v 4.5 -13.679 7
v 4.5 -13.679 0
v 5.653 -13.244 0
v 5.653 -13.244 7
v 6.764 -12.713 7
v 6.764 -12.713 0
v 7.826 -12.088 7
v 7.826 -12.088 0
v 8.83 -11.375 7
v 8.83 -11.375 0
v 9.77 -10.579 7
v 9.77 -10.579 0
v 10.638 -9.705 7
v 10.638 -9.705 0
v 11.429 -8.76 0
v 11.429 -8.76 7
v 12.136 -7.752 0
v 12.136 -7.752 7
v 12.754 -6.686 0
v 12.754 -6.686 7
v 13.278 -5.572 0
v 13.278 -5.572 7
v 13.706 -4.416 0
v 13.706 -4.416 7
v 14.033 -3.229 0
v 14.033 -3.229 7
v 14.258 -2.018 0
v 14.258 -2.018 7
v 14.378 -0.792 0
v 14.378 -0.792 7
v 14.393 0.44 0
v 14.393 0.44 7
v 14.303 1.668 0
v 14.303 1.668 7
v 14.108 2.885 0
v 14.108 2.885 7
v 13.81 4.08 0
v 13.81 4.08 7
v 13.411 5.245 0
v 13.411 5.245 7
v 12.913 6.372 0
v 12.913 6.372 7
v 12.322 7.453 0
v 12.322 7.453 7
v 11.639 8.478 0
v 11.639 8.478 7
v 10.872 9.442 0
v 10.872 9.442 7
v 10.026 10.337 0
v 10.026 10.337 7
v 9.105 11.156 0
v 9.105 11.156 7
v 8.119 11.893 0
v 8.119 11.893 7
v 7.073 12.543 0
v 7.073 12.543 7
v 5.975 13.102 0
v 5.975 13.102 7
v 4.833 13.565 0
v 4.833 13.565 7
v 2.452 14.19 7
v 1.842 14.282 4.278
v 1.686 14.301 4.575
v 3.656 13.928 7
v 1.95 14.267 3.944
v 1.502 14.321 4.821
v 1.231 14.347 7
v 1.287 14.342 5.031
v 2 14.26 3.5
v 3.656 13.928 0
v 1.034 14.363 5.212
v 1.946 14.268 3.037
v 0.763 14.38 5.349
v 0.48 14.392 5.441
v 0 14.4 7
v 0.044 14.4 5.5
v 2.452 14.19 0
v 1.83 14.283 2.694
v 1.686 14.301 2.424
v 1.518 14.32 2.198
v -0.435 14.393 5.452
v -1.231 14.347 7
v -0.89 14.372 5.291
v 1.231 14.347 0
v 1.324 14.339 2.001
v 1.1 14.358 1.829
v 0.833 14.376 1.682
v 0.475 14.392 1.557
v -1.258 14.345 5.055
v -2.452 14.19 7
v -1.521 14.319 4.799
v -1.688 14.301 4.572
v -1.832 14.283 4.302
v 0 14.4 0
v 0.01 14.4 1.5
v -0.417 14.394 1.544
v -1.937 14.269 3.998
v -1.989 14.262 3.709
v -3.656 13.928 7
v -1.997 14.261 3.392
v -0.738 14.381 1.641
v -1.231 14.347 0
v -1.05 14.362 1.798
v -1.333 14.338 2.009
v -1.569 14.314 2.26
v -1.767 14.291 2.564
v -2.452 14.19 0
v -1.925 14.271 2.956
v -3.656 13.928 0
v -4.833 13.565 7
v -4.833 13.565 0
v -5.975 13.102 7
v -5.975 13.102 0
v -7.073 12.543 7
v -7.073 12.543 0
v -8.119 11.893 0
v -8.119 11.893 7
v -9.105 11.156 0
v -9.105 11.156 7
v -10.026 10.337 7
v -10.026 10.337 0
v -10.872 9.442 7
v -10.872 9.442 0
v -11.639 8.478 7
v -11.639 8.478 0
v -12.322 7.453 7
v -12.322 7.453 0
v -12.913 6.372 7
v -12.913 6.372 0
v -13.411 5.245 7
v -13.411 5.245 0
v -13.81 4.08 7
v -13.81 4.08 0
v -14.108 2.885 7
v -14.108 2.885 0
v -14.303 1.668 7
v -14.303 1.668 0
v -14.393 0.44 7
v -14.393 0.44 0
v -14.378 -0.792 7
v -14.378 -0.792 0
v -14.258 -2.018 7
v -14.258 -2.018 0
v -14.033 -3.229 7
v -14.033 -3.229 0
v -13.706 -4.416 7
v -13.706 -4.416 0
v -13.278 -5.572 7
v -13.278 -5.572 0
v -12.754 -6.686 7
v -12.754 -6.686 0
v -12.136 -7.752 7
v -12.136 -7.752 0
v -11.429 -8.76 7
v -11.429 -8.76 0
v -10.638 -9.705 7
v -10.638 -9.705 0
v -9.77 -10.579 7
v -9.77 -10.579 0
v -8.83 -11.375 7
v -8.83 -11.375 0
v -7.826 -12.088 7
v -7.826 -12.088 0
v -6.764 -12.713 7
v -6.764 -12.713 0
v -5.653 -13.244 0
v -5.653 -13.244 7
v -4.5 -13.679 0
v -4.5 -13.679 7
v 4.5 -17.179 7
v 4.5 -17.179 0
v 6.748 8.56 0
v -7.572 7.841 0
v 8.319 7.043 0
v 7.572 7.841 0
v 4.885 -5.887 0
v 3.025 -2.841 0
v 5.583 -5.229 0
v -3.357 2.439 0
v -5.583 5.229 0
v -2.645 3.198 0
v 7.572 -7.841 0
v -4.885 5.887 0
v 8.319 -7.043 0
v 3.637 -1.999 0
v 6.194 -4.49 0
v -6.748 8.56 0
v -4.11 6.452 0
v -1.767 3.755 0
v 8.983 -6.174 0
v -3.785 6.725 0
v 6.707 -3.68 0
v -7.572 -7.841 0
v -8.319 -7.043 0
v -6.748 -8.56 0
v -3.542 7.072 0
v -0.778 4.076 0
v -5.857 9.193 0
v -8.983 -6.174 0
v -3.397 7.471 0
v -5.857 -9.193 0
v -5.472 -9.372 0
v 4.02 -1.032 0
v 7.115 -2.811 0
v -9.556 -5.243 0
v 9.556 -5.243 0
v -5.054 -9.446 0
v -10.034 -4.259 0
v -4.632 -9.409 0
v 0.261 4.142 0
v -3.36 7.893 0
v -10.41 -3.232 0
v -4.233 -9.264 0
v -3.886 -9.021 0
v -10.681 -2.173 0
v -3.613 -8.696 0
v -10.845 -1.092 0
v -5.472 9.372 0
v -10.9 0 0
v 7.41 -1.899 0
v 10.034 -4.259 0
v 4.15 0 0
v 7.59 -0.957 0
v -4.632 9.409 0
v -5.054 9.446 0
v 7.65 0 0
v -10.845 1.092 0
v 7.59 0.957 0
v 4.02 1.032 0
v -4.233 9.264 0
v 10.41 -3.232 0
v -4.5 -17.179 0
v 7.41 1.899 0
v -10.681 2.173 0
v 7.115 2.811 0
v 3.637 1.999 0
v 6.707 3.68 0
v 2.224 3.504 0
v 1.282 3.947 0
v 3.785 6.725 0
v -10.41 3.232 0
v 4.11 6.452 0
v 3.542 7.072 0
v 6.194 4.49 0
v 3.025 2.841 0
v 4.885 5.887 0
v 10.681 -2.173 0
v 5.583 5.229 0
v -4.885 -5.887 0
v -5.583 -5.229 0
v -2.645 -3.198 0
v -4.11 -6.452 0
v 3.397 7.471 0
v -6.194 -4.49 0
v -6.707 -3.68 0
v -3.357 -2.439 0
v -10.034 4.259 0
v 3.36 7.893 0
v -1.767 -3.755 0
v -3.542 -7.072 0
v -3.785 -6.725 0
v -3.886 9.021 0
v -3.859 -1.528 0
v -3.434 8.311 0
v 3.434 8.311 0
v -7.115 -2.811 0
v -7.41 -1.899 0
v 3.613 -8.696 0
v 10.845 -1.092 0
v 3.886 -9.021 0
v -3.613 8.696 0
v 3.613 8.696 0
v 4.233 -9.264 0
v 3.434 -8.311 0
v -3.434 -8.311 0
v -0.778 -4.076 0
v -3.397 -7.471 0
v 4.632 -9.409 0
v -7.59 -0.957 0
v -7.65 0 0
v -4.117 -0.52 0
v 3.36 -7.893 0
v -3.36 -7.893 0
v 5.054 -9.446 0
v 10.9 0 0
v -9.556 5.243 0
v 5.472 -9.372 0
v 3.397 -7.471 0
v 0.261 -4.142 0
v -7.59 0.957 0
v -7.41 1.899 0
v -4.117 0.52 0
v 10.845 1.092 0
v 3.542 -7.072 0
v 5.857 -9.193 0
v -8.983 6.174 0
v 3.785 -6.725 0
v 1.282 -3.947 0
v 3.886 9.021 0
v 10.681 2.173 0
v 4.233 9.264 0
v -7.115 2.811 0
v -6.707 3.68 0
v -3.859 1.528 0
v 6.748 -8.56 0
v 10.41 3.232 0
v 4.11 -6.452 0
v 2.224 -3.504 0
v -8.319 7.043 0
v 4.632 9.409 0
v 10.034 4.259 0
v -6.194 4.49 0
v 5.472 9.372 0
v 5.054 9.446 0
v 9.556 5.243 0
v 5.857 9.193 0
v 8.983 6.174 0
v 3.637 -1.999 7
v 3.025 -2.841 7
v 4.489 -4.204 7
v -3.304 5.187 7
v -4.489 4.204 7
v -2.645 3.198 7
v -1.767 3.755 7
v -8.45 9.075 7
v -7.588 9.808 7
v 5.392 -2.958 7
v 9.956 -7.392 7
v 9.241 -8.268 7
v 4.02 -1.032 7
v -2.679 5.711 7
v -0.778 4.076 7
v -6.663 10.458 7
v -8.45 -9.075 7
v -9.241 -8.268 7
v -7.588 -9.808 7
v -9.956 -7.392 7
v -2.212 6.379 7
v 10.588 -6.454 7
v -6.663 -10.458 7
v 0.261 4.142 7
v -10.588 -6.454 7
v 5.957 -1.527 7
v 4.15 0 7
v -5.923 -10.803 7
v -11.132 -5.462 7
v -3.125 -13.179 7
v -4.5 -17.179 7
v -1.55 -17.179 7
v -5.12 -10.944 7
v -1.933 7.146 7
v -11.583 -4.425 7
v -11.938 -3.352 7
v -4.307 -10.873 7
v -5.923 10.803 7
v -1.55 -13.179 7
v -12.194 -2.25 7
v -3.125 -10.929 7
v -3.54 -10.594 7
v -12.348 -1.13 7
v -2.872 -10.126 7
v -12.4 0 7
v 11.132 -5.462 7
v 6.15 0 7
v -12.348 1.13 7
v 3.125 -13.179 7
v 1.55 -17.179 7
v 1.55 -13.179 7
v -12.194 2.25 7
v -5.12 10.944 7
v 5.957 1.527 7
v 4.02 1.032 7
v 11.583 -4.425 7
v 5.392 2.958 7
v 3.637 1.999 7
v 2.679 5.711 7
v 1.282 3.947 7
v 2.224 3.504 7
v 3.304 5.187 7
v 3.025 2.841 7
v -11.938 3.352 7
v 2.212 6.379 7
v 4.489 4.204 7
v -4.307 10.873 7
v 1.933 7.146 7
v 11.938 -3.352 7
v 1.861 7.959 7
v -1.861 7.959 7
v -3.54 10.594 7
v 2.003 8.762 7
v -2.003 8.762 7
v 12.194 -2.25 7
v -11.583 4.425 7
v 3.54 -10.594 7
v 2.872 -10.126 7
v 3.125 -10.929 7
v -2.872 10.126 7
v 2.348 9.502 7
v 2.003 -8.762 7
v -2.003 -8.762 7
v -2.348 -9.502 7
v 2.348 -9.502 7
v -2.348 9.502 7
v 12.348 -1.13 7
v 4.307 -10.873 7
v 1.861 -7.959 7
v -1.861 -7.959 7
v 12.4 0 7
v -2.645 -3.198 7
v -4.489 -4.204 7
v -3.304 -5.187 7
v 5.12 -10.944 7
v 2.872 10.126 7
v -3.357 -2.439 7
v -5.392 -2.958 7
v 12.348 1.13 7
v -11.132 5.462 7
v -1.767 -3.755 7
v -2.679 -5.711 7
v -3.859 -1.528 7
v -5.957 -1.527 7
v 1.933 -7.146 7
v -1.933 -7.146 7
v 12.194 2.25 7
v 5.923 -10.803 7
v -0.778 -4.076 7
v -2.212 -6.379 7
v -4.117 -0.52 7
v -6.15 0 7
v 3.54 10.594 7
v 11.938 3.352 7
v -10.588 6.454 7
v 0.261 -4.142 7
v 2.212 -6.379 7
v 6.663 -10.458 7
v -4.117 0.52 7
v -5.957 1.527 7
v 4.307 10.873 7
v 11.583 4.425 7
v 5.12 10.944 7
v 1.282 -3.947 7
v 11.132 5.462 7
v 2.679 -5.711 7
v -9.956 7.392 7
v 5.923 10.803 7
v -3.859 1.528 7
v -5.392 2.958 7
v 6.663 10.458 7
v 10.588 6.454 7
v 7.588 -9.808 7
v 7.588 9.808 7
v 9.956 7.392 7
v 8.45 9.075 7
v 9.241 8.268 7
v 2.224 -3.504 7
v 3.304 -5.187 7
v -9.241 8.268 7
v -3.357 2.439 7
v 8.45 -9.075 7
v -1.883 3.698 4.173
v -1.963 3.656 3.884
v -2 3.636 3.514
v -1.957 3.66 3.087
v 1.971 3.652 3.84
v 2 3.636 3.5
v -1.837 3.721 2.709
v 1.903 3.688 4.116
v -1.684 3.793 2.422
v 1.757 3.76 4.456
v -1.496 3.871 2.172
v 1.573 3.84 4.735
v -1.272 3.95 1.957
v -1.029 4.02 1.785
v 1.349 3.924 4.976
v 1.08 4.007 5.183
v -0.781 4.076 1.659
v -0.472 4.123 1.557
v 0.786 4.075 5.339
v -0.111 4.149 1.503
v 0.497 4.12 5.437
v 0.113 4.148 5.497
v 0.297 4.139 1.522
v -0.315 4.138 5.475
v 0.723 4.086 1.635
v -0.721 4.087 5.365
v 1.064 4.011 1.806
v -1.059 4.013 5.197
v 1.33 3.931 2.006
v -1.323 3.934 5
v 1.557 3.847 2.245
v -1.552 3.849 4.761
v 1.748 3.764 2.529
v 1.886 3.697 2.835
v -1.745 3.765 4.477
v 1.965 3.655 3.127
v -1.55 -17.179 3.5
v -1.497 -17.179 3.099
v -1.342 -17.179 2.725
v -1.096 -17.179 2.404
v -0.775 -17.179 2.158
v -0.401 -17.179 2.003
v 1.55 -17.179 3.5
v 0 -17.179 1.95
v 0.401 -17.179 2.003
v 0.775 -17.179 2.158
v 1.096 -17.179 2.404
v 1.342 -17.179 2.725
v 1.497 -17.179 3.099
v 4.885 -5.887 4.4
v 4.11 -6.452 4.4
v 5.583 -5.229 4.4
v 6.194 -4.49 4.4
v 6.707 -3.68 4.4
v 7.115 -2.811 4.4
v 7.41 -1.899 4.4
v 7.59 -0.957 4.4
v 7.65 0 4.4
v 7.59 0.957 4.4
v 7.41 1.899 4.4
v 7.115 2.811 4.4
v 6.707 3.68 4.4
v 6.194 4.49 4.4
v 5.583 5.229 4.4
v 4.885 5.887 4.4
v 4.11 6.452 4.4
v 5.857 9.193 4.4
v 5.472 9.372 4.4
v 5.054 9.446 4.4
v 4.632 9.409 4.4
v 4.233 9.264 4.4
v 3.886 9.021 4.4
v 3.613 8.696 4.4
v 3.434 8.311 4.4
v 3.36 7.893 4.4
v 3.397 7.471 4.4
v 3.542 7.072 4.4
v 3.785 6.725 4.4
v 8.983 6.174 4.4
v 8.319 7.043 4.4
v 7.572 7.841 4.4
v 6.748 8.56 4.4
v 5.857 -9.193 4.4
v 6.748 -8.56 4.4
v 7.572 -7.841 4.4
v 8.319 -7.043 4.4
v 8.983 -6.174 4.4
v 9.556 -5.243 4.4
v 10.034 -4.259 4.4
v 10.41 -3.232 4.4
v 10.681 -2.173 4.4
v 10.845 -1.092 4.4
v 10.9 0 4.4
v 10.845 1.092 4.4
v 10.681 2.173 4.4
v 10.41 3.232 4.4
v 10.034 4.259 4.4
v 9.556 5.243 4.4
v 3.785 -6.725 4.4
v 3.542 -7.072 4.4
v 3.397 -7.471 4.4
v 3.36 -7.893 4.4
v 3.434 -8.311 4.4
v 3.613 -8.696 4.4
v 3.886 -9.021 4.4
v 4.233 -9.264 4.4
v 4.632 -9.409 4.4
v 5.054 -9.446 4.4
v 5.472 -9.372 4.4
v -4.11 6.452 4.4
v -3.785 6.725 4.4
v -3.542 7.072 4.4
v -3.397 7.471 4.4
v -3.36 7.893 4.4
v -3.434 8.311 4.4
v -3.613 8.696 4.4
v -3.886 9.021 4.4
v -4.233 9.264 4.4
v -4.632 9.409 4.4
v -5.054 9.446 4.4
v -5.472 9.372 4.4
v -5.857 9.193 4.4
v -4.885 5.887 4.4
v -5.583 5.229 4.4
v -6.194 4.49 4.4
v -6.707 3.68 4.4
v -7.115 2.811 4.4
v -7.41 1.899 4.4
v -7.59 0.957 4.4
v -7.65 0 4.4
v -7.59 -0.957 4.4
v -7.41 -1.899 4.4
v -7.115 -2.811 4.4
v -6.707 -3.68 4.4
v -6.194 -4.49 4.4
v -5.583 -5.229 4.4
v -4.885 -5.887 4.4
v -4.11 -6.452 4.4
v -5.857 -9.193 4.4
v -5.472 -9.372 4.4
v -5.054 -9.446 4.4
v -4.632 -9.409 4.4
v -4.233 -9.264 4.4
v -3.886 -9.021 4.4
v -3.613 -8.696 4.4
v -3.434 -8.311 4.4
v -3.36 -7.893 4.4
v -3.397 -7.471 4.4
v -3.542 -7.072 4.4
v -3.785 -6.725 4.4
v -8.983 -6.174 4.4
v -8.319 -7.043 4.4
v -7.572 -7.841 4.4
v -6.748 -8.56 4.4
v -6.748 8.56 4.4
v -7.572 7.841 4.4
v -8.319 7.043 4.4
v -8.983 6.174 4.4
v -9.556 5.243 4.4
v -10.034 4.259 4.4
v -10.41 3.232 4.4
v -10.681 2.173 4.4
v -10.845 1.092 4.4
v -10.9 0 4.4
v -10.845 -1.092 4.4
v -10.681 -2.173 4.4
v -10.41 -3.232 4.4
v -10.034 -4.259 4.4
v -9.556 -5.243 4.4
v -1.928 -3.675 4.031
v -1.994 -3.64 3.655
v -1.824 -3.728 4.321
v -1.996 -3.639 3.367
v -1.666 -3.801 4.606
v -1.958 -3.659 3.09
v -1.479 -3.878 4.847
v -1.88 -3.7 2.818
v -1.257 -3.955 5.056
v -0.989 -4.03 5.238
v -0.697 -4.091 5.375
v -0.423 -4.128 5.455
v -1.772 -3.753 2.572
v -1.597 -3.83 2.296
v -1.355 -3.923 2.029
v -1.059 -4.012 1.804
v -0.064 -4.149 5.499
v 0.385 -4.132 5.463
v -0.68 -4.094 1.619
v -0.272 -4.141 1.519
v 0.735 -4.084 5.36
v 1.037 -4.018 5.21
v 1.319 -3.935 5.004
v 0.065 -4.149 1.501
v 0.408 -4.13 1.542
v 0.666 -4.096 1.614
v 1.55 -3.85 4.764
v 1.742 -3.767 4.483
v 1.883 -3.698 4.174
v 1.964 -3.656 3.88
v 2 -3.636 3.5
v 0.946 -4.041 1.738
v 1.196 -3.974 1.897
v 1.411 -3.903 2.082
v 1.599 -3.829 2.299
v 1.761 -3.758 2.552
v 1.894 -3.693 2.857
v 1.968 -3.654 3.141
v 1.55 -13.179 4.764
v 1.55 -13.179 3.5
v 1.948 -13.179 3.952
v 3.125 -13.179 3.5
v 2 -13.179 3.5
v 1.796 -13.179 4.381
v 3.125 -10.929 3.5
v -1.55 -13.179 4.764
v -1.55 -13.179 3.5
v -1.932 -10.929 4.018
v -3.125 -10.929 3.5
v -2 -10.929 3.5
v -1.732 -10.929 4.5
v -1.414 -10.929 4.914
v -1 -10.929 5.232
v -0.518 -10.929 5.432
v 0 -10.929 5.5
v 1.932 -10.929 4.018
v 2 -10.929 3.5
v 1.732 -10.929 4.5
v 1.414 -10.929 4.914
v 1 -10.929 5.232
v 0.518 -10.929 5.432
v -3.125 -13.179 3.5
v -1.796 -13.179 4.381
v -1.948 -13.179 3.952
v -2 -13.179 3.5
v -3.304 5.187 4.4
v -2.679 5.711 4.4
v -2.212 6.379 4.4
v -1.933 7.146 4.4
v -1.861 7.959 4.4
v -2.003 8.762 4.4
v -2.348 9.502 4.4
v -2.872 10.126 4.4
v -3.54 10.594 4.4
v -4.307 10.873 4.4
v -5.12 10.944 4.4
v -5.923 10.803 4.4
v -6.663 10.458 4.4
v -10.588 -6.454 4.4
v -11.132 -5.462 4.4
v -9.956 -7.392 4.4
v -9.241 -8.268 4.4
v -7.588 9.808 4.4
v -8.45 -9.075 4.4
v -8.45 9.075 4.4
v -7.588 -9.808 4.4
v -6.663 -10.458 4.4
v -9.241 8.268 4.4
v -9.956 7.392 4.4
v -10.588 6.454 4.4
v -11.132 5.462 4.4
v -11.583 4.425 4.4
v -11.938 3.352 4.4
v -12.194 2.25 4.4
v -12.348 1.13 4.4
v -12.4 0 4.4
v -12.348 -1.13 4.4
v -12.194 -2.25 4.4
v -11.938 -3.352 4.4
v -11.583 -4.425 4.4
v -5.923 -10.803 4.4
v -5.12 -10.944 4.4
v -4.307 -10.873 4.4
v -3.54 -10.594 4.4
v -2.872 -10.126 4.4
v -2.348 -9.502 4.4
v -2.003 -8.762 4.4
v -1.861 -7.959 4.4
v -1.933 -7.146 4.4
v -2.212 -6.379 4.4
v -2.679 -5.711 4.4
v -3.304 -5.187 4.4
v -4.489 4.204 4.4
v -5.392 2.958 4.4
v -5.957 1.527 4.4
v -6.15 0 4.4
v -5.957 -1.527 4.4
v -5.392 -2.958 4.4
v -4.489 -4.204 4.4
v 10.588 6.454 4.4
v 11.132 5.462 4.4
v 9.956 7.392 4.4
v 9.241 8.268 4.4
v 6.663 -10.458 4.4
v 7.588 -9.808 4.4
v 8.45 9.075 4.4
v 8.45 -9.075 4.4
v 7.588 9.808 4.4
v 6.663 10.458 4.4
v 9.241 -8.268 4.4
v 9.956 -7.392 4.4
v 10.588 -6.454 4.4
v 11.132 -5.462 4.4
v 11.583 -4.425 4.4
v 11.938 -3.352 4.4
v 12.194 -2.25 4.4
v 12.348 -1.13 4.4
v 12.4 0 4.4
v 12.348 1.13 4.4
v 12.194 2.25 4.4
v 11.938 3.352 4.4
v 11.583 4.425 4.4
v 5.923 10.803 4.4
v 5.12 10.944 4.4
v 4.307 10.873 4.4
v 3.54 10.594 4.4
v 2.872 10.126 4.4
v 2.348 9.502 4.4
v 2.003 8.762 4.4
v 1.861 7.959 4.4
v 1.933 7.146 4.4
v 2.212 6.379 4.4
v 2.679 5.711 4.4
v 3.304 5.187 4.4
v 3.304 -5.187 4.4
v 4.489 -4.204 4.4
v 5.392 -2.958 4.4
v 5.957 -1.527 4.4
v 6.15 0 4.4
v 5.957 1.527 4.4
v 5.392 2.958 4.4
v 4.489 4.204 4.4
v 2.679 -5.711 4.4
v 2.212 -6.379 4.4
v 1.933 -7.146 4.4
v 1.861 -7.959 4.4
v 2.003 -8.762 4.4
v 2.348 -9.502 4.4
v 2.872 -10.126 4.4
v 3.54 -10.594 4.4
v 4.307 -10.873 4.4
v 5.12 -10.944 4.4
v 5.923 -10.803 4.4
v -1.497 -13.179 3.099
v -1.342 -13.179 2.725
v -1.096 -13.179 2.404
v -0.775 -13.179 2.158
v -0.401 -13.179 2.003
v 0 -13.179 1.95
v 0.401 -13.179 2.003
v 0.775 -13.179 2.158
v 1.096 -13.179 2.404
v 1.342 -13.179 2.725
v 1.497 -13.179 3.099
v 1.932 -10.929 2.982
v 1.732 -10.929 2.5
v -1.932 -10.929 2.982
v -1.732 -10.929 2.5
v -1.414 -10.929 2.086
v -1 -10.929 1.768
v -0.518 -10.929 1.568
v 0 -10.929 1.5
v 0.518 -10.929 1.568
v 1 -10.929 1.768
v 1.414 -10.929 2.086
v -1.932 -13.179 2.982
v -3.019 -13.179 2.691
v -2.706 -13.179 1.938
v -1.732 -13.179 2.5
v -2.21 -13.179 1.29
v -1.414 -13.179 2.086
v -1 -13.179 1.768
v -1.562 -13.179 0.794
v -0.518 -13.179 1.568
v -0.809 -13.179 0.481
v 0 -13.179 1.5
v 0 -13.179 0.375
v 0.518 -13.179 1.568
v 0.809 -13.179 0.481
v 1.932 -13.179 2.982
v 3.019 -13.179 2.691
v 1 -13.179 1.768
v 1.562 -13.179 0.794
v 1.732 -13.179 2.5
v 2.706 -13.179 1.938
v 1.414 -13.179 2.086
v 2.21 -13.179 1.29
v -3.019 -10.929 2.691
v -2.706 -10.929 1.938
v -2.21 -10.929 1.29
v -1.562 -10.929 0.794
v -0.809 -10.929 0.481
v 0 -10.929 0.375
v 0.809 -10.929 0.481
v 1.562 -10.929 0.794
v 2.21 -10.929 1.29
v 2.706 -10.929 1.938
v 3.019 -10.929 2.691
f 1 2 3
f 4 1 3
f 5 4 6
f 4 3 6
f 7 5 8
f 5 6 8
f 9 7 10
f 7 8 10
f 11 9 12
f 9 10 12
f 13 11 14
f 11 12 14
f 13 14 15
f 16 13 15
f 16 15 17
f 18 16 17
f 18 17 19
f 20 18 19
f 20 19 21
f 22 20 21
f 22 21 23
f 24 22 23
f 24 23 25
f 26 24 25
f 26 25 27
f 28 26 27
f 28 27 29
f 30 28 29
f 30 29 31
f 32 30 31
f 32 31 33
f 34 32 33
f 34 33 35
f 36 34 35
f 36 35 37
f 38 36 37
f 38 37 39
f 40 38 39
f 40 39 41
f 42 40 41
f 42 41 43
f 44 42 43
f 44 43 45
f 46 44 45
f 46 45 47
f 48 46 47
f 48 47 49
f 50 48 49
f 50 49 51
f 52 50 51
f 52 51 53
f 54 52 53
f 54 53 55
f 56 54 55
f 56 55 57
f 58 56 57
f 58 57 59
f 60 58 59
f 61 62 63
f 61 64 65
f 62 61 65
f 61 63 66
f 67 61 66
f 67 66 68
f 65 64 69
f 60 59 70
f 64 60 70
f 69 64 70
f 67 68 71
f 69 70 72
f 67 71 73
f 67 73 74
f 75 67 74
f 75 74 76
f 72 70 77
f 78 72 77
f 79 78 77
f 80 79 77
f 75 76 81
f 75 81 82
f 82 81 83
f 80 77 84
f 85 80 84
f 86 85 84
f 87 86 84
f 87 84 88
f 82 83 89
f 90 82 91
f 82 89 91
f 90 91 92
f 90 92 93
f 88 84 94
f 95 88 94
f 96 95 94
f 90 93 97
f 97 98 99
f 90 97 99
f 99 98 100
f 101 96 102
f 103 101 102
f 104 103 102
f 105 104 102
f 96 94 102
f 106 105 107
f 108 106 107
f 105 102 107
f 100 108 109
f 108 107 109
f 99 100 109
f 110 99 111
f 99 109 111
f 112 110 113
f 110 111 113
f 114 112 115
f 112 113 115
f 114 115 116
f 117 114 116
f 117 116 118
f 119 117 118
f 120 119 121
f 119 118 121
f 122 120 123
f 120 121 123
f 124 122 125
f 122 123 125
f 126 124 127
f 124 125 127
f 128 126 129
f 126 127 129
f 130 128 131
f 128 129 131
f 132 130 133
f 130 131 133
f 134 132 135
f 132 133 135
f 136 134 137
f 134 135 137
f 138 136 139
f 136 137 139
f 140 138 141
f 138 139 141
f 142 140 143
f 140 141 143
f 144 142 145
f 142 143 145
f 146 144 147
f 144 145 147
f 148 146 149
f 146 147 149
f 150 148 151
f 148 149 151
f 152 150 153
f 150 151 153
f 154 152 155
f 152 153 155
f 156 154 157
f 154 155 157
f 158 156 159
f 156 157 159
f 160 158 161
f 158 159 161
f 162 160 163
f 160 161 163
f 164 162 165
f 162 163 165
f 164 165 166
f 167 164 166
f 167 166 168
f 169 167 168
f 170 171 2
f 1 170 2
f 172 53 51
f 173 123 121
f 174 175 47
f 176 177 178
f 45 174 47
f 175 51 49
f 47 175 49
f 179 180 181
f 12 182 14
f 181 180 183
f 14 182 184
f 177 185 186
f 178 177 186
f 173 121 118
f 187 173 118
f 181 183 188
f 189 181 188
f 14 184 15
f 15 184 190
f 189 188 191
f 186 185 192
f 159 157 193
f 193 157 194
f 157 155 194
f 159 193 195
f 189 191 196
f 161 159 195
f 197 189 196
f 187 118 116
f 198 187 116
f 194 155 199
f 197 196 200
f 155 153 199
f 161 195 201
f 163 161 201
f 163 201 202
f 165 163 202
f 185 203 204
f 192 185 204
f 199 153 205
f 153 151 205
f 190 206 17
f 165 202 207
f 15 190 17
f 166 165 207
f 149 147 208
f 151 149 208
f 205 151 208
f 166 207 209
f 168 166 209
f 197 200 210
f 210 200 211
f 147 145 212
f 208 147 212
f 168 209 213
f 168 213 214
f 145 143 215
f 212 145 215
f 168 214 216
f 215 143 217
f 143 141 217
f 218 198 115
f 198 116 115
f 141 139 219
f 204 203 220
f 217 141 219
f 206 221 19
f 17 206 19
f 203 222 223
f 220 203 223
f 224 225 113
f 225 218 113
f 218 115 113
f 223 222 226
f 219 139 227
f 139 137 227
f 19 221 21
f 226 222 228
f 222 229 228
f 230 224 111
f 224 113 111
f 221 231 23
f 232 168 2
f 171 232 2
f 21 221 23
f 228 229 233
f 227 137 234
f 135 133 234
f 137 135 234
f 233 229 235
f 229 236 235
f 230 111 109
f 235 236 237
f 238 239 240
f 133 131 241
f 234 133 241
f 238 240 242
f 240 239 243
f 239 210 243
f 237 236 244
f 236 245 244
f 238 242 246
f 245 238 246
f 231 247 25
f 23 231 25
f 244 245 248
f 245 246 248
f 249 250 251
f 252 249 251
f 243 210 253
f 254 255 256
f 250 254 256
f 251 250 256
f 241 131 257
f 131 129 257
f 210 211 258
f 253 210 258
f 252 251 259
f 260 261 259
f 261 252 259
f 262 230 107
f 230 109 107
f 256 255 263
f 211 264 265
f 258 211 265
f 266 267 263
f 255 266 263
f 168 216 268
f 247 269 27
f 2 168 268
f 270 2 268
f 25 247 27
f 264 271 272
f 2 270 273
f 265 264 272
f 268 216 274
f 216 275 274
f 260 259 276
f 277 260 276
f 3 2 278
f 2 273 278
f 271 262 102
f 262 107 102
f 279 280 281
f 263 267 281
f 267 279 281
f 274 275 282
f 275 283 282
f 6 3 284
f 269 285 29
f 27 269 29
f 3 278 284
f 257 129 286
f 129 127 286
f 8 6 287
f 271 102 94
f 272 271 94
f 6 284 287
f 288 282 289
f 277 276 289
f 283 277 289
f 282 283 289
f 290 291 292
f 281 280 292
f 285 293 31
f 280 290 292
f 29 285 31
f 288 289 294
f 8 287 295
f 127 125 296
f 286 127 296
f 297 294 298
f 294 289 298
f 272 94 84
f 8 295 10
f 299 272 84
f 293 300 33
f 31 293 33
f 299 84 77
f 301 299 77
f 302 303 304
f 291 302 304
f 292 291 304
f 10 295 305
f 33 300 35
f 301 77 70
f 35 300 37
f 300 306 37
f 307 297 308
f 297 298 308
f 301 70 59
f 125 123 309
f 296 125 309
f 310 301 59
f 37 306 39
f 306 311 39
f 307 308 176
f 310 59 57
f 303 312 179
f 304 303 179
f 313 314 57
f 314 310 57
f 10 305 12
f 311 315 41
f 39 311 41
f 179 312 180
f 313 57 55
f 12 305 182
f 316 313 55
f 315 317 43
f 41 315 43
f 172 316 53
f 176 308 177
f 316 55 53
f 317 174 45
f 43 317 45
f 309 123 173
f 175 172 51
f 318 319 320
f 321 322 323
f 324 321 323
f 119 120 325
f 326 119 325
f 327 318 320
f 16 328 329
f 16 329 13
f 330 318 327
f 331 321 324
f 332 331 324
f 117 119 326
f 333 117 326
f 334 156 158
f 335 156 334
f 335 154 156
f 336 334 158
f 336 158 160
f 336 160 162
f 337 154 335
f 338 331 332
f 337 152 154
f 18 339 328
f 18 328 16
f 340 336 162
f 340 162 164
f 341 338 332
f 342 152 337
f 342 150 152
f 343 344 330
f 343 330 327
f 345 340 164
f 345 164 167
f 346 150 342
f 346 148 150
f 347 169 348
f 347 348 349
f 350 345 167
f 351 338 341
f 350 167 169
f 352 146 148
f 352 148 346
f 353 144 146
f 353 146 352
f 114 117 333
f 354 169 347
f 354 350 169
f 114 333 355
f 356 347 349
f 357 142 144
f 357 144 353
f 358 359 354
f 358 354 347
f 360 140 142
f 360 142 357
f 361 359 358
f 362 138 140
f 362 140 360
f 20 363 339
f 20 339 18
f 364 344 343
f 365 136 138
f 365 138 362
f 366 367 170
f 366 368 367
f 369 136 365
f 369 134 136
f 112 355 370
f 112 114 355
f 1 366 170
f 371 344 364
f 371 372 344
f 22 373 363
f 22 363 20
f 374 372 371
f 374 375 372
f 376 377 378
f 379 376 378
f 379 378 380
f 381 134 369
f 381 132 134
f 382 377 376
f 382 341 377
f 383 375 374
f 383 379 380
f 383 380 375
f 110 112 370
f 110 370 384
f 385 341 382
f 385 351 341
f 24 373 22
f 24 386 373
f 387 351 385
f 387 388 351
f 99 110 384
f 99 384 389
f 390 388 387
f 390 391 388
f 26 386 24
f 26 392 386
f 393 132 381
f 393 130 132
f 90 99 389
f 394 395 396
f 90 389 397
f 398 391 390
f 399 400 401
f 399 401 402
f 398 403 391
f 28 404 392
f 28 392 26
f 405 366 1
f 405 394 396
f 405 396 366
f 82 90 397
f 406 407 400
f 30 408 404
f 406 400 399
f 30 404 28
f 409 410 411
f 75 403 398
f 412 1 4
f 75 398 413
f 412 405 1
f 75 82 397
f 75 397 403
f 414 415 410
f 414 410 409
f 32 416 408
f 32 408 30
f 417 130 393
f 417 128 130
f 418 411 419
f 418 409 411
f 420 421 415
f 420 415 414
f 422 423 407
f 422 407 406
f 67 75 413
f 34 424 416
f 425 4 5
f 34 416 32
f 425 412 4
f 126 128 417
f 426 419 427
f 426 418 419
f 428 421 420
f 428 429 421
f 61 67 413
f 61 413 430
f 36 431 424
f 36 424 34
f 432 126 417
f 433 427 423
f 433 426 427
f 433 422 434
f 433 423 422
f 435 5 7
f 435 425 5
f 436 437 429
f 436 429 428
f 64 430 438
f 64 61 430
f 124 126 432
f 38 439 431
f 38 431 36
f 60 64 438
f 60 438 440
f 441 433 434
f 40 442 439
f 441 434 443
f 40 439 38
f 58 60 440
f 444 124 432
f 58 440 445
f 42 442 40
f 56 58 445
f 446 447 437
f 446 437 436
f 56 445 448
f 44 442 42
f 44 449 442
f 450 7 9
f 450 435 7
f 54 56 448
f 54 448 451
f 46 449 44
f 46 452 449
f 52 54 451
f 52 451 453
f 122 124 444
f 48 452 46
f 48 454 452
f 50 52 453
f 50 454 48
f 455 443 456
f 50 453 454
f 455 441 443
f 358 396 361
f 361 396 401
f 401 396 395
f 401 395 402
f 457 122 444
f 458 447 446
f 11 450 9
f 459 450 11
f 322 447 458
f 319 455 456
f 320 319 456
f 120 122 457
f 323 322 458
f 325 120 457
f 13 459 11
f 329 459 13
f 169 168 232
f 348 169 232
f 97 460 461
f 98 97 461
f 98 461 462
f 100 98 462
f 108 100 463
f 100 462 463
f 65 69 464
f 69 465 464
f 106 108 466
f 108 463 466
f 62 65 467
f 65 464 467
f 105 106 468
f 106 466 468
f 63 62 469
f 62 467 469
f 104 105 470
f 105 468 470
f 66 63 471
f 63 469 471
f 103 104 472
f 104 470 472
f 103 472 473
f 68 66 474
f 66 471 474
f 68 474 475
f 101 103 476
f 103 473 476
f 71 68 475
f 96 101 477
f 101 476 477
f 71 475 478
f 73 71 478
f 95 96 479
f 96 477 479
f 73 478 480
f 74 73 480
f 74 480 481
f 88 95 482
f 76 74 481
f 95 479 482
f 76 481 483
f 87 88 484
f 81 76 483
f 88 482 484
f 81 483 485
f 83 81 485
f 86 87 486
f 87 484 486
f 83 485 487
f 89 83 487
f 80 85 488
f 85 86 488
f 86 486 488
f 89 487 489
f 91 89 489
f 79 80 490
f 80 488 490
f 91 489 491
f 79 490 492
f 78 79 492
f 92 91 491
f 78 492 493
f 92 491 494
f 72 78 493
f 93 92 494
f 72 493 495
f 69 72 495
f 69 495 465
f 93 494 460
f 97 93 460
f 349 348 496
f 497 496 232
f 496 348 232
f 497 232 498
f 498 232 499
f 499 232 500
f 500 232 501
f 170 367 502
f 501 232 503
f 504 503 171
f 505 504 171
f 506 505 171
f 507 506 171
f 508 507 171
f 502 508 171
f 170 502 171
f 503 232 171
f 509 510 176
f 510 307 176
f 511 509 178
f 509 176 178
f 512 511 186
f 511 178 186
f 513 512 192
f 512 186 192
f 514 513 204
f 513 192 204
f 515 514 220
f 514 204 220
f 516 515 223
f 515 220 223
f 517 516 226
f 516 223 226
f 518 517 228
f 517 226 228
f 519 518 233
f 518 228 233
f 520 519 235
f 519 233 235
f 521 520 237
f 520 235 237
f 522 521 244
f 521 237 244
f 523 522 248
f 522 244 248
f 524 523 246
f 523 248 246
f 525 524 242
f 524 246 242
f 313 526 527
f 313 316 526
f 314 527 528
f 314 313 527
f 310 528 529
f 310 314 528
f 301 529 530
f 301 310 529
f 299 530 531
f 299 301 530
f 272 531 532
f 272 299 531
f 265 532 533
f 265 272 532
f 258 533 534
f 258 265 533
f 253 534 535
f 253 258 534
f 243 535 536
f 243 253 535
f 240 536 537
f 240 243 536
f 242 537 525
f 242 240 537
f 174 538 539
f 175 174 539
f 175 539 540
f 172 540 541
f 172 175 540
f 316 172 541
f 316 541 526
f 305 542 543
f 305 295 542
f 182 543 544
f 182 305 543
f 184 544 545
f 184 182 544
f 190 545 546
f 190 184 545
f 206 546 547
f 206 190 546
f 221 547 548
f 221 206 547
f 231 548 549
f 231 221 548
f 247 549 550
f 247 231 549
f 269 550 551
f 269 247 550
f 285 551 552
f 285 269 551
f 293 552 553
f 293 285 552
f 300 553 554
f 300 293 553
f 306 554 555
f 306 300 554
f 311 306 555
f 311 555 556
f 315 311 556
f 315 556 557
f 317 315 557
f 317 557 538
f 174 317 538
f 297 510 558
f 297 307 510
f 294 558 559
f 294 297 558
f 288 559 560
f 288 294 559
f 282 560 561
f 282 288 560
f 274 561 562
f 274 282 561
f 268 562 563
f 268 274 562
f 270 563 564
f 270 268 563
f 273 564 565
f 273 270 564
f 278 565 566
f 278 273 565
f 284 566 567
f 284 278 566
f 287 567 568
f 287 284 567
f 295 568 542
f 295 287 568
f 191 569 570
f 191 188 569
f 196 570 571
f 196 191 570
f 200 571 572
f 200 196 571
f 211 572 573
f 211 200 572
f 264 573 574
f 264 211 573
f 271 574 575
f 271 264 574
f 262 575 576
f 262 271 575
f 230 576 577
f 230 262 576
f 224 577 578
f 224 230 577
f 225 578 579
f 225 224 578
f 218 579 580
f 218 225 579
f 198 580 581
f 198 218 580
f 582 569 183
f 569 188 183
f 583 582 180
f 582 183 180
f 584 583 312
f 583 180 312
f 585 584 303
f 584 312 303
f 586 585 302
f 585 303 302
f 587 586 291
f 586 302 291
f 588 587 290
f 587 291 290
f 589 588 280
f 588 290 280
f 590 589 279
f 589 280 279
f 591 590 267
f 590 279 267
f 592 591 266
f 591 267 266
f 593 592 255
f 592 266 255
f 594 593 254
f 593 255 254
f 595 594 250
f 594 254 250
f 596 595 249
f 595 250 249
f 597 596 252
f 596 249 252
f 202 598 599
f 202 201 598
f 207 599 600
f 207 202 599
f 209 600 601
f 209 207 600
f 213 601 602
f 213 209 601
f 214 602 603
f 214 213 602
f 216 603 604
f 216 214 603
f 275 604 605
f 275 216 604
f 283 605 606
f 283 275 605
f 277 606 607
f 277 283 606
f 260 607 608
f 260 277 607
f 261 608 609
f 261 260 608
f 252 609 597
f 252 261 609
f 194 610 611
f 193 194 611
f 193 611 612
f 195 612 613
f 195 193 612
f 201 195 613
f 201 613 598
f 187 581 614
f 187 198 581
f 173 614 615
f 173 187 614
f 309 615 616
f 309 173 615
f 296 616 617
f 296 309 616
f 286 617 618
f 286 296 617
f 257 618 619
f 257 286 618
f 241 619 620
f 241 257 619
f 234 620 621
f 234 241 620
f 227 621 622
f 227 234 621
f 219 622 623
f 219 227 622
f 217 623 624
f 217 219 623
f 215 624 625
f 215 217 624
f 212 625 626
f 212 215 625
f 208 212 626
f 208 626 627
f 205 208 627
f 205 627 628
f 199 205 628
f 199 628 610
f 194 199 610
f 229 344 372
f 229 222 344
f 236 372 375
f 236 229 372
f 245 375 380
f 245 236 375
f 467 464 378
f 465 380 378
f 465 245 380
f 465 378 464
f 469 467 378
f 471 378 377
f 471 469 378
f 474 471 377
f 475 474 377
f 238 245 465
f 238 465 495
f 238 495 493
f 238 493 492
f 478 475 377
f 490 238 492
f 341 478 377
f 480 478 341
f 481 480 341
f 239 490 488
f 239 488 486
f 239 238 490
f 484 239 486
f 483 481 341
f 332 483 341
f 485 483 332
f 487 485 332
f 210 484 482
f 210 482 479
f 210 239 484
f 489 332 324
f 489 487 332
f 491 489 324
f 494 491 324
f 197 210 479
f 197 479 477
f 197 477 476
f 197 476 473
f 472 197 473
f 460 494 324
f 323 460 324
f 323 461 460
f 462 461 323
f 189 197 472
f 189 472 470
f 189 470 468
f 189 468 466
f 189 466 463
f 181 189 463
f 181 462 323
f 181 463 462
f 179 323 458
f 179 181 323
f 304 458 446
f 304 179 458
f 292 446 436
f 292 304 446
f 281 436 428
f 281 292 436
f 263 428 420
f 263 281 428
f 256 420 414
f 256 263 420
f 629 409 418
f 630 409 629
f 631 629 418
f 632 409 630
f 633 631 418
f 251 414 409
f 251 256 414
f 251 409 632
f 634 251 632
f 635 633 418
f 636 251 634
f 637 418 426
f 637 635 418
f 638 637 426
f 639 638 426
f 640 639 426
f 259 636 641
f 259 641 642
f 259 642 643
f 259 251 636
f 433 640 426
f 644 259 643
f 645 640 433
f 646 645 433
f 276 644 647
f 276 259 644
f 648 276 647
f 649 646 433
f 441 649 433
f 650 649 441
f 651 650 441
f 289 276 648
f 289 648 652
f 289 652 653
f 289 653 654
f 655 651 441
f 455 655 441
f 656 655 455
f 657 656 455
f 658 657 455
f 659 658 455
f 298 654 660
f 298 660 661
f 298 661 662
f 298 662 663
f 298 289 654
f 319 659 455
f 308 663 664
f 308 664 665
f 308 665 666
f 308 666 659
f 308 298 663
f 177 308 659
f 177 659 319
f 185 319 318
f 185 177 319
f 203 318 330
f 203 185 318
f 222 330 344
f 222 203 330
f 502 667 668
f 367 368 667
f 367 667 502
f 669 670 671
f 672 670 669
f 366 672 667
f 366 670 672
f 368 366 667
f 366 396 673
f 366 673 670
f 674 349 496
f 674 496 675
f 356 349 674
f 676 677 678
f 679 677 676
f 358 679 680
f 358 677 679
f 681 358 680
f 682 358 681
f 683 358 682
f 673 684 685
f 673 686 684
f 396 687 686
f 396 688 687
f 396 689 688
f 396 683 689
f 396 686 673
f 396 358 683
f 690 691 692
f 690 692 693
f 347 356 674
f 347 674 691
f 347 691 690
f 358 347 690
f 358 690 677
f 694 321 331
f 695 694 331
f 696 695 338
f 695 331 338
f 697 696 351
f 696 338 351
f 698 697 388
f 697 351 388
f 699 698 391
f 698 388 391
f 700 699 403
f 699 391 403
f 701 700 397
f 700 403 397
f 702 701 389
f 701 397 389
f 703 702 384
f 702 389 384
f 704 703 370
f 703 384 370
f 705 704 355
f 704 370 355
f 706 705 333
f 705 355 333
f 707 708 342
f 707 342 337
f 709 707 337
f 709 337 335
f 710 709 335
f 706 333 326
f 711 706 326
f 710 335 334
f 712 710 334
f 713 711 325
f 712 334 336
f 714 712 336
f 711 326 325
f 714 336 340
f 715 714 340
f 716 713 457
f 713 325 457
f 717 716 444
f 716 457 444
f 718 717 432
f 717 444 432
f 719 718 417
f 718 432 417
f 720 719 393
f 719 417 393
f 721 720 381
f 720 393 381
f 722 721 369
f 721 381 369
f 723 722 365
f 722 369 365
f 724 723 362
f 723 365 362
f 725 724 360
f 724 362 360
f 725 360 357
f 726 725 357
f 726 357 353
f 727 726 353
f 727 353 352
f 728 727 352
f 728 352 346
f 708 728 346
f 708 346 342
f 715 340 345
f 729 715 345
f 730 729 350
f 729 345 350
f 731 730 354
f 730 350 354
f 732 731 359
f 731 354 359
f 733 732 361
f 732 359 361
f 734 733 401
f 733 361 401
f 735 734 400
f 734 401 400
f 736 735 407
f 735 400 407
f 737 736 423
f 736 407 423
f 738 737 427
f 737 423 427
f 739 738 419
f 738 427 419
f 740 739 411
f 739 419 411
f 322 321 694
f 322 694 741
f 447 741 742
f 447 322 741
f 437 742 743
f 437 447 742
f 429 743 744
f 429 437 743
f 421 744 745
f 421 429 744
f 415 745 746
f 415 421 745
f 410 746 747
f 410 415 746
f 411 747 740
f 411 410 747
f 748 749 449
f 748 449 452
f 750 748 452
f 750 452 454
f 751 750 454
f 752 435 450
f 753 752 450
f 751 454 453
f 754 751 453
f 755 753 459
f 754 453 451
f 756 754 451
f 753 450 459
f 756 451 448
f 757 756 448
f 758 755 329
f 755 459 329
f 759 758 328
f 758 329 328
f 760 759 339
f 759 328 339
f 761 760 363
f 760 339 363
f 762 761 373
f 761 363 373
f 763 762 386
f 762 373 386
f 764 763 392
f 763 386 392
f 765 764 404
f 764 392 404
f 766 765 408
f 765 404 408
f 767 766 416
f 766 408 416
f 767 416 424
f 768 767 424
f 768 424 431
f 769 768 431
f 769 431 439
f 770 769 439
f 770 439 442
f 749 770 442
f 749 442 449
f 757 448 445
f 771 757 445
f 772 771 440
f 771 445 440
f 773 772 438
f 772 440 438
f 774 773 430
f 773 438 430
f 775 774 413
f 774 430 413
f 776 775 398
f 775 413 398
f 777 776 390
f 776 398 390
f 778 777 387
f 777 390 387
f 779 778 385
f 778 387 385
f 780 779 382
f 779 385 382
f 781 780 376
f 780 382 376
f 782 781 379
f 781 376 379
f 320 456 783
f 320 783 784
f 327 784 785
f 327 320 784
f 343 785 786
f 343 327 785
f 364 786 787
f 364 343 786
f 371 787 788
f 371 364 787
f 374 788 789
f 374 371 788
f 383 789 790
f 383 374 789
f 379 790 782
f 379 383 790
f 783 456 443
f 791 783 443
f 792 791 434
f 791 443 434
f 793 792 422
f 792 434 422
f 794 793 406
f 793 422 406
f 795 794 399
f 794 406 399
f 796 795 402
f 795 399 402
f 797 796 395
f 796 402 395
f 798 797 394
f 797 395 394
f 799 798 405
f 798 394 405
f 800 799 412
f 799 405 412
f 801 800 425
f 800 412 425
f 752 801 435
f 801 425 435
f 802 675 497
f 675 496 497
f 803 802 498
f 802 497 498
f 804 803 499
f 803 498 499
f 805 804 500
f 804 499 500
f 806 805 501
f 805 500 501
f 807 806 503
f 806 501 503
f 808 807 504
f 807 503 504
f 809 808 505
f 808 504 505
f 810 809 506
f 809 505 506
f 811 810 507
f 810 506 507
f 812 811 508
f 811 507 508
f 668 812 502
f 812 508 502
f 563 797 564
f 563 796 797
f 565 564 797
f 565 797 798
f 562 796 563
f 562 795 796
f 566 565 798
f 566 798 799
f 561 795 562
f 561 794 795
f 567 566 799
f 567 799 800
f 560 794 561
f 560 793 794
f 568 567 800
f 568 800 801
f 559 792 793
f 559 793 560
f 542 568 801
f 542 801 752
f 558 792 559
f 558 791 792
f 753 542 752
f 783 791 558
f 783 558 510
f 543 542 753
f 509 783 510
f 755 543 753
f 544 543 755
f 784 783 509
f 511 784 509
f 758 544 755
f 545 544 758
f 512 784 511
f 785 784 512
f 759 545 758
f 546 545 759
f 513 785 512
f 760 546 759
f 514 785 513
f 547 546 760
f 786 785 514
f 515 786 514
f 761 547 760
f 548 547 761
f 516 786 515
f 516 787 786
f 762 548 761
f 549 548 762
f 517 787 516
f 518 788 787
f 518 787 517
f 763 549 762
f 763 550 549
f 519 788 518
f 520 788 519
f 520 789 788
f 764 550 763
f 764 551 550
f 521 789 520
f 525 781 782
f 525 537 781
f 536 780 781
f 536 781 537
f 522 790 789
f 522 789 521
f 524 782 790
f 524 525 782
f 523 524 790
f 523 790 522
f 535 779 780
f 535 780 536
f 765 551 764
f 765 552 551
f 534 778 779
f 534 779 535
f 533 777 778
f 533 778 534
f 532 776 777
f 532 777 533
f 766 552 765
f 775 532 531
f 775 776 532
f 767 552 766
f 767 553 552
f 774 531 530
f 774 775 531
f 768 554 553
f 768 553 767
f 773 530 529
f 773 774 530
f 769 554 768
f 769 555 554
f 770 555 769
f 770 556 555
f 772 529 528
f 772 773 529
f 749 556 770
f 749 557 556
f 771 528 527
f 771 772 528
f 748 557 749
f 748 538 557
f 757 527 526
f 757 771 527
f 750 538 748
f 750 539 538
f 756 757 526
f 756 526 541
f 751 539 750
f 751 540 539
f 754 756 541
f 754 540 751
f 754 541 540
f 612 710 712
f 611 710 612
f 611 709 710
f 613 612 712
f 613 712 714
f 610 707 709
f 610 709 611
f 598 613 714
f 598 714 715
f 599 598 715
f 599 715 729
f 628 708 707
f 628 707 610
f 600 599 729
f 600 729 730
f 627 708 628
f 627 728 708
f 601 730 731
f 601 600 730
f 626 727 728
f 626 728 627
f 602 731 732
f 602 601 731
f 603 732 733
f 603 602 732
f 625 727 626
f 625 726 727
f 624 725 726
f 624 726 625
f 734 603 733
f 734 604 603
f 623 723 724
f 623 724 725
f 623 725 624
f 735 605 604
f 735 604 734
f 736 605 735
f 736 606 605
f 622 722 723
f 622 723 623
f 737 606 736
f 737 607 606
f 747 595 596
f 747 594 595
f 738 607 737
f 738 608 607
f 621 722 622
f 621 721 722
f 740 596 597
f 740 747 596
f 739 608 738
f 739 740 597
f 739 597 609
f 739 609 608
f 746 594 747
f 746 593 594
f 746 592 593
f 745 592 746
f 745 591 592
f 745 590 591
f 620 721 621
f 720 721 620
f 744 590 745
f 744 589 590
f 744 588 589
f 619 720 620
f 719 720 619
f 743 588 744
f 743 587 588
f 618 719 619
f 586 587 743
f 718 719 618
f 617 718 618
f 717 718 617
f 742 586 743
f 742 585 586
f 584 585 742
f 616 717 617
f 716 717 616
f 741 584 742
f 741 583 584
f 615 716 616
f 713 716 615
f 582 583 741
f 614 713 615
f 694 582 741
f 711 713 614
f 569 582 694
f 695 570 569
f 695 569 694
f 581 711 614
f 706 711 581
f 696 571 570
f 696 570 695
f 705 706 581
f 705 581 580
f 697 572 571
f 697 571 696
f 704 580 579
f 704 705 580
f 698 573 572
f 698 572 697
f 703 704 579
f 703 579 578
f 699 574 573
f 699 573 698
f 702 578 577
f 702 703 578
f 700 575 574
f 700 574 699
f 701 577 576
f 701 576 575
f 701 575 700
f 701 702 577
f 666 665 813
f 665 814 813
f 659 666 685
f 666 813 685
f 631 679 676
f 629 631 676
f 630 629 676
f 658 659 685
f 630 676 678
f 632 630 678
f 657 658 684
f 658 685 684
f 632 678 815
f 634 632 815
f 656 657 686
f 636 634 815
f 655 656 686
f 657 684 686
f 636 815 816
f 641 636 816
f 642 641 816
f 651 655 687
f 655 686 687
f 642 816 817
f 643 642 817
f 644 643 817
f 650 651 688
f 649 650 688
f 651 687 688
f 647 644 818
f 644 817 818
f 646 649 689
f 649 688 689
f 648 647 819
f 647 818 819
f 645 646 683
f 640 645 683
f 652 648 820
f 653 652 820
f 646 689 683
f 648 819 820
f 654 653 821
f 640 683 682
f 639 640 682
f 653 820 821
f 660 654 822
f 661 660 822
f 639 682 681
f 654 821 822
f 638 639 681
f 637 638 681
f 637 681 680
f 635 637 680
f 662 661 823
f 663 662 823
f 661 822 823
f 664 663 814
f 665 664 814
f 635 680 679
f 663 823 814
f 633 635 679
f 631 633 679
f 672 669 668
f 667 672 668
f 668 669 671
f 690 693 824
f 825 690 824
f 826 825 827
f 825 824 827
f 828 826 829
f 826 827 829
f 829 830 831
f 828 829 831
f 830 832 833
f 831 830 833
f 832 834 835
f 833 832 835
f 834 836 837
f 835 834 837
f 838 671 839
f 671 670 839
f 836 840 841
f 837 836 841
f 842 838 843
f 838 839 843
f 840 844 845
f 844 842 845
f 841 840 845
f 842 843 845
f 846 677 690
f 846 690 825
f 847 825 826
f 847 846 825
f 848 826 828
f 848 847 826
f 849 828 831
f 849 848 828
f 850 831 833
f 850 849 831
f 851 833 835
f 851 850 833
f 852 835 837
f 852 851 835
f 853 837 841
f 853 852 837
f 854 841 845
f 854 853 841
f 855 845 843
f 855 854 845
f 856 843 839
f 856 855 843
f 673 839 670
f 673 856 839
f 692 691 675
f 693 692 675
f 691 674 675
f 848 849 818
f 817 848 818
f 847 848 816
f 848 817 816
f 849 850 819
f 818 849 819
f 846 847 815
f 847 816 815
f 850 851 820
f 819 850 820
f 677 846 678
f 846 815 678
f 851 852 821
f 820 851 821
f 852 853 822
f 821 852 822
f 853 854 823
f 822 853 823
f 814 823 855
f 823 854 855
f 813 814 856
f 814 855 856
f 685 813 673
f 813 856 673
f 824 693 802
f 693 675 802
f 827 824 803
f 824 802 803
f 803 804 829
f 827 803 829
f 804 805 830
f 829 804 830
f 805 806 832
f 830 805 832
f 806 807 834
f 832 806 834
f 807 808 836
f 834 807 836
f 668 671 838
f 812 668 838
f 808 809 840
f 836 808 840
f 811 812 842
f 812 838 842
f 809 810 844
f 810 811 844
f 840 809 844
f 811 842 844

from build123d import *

# Parameters (mm, degrees)
SKETCH_R        = 4.15
EXTRUDE_DEPTH   = 7
SKETCH001_R     = 1.55
POCKET_DEPTH    = 4
SKETCH002_R     = 2
POCKET001_DEPTH = 27.5798157383
POCKET002_DEPTH = 3.5
POCKET003_DEPTH = 2.25
POCKET004_DEPTH = 2.6


with BuildPart() as part:
    # Sketch → Extrude (new body)
    with BuildSketch(Plane.XY):
        with BuildLine():
            ThreePointArc((4.5, -13.6788157382), (0, 14.4), (-4.5, -13.6788157382))
            Line((-4.5, -13.6788157382), (-4.5, -17.1788157382))
            Line((-4.5, -17.1788157382), (4.5, -17.1788157382))
            Line((4.5, -17.1788157382), (4.5, -13.6788157382))
        make_face()
        Circle(SKETCH_R, mode=Mode.SUBTRACT)
        with BuildLine():
            ThreePointArc((-4.1103420039, 6.4519445605), (-7.65, 0), (-4.1103420039, -6.4519445605))
            ThreePointArc((-5.856565731, -9.1929667594), (-3.612942768, -8.6955675235), (-4.1103420039, -6.4519445605))
            ThreePointArc((-5.856565731, 9.1929667594), (-10.9, 0), (-5.856565731, -9.1929667594))
            ThreePointArc((-4.1103420039, 6.4519445605), (-3.612942768, 8.6955675235), (-5.856565731, 9.1929667594))
        make_face(mode=Mode.SUBTRACT)
        with BuildLine():
            ThreePointArc((4.1103420039, -6.4519445605), (7.65, 0), (4.1103420039, 6.4519445605))
            ThreePointArc((5.856565731, 9.1929667594), (3.612942768, 8.6955675235), (4.1103420039, 6.4519445605))
            ThreePointArc((5.856565731, -9.1929667594), (10.9, 0), (5.856565731, 9.1929667594))
            ThreePointArc((4.1103420039, -6.4519445605), (3.612942768, -8.6955675235), (5.856565731, -9.1929667594))
        make_face(mode=Mode.SUBTRACT)
    extrude(amount=EXTRUDE_DEPTH)

    # Sketch001 → Pocket (cut)
    with BuildSketch(Plane.XZ.offset(17.1788157382)):
        with Locations((0, 3.5)):
            Circle(SKETCH001_R)
    extrude(amount=-POCKET_DEPTH, mode=Mode.SUBTRACT)

    # Sketch002 → Pocket001 (cut, through all)
    with BuildSketch(Plane.XZ.offset(13.1788157382)):
        with Locations((0, 3.5)):
            Circle(SKETCH002_R)
    extrude(amount=-POCKET001_DEPTH, mode=Mode.SUBTRACT)

    # Sketch003 → Pocket002 (cut)
    with BuildSketch(Plane.XY.offset(7)):
        Polygon((1.55, -17.1788157382), (-1.55, -17.1788157382), (-1.55, -13.1788157382), (-3.125, -13.1788157382), (-3.125, -10.9288157382), (3.125, -10.9288157382), (3.125, -13.1788157382), (1.55, -13.1788157382), align=None)
    extrude(amount=-POCKET002_DEPTH, mode=Mode.SUBTRACT)

    # Sketch004 → Pocket003 (cut)
    with BuildSketch(Plane.XZ.offset(10.9288157382)):
        with BuildLine():
            Line((-3.125, 3.5), (3.125, 3.5))
            ThreePointArc((-3.125, 3.5), (0, 0.375), (3.125, 3.5))
        make_face()
    extrude(amount=POCKET003_DEPTH, mode=Mode.SUBTRACT)

    # Sketch005 → Pocket004 (cut)
    with BuildSketch(Plane.XY.offset(7)):
        with BuildLine():
            ThreePointArc((-3.3043925913, 5.1868573917), (-2.3478555993, 9.501516936), (-6.6625151435, 10.4580539281))
            ThreePointArc((-6.6625151435, 10.4580539281), (-12.4, 0), (-6.6625151435, -10.4580539281))
            ThreePointArc((-6.6625151435, -10.4580539281), (-2.3478555993, -9.501516936), (-3.3043925913, -5.1868573918))
            ThreePointArc((-3.3043925913, 5.1868573917), (-6.15, 0), (-3.3043925913, -5.1868573918))
        make_face()
        with BuildLine():
            ThreePointArc((6.6625151435, 10.4580539281), (2.3478555993, 9.501516936), (3.3043925913, 5.1868573917))
            ThreePointArc((3.3043925913, -5.1868573917), (6.15, 0), (3.3043925913, 5.1868573917))
            ThreePointArc((3.3043925913, -5.1868573917), (2.3478555993, -9.501516936), (6.6625151435, -10.4580539281))
            ThreePointArc((6.6625151435, -10.4580539281), (12.4, 0), (6.6625151435, 10.4580539281))
        make_face()
    extrude(amount=-POCKET004_DEPTH, mode=Mode.SUBTRACT)


solid = part.part
